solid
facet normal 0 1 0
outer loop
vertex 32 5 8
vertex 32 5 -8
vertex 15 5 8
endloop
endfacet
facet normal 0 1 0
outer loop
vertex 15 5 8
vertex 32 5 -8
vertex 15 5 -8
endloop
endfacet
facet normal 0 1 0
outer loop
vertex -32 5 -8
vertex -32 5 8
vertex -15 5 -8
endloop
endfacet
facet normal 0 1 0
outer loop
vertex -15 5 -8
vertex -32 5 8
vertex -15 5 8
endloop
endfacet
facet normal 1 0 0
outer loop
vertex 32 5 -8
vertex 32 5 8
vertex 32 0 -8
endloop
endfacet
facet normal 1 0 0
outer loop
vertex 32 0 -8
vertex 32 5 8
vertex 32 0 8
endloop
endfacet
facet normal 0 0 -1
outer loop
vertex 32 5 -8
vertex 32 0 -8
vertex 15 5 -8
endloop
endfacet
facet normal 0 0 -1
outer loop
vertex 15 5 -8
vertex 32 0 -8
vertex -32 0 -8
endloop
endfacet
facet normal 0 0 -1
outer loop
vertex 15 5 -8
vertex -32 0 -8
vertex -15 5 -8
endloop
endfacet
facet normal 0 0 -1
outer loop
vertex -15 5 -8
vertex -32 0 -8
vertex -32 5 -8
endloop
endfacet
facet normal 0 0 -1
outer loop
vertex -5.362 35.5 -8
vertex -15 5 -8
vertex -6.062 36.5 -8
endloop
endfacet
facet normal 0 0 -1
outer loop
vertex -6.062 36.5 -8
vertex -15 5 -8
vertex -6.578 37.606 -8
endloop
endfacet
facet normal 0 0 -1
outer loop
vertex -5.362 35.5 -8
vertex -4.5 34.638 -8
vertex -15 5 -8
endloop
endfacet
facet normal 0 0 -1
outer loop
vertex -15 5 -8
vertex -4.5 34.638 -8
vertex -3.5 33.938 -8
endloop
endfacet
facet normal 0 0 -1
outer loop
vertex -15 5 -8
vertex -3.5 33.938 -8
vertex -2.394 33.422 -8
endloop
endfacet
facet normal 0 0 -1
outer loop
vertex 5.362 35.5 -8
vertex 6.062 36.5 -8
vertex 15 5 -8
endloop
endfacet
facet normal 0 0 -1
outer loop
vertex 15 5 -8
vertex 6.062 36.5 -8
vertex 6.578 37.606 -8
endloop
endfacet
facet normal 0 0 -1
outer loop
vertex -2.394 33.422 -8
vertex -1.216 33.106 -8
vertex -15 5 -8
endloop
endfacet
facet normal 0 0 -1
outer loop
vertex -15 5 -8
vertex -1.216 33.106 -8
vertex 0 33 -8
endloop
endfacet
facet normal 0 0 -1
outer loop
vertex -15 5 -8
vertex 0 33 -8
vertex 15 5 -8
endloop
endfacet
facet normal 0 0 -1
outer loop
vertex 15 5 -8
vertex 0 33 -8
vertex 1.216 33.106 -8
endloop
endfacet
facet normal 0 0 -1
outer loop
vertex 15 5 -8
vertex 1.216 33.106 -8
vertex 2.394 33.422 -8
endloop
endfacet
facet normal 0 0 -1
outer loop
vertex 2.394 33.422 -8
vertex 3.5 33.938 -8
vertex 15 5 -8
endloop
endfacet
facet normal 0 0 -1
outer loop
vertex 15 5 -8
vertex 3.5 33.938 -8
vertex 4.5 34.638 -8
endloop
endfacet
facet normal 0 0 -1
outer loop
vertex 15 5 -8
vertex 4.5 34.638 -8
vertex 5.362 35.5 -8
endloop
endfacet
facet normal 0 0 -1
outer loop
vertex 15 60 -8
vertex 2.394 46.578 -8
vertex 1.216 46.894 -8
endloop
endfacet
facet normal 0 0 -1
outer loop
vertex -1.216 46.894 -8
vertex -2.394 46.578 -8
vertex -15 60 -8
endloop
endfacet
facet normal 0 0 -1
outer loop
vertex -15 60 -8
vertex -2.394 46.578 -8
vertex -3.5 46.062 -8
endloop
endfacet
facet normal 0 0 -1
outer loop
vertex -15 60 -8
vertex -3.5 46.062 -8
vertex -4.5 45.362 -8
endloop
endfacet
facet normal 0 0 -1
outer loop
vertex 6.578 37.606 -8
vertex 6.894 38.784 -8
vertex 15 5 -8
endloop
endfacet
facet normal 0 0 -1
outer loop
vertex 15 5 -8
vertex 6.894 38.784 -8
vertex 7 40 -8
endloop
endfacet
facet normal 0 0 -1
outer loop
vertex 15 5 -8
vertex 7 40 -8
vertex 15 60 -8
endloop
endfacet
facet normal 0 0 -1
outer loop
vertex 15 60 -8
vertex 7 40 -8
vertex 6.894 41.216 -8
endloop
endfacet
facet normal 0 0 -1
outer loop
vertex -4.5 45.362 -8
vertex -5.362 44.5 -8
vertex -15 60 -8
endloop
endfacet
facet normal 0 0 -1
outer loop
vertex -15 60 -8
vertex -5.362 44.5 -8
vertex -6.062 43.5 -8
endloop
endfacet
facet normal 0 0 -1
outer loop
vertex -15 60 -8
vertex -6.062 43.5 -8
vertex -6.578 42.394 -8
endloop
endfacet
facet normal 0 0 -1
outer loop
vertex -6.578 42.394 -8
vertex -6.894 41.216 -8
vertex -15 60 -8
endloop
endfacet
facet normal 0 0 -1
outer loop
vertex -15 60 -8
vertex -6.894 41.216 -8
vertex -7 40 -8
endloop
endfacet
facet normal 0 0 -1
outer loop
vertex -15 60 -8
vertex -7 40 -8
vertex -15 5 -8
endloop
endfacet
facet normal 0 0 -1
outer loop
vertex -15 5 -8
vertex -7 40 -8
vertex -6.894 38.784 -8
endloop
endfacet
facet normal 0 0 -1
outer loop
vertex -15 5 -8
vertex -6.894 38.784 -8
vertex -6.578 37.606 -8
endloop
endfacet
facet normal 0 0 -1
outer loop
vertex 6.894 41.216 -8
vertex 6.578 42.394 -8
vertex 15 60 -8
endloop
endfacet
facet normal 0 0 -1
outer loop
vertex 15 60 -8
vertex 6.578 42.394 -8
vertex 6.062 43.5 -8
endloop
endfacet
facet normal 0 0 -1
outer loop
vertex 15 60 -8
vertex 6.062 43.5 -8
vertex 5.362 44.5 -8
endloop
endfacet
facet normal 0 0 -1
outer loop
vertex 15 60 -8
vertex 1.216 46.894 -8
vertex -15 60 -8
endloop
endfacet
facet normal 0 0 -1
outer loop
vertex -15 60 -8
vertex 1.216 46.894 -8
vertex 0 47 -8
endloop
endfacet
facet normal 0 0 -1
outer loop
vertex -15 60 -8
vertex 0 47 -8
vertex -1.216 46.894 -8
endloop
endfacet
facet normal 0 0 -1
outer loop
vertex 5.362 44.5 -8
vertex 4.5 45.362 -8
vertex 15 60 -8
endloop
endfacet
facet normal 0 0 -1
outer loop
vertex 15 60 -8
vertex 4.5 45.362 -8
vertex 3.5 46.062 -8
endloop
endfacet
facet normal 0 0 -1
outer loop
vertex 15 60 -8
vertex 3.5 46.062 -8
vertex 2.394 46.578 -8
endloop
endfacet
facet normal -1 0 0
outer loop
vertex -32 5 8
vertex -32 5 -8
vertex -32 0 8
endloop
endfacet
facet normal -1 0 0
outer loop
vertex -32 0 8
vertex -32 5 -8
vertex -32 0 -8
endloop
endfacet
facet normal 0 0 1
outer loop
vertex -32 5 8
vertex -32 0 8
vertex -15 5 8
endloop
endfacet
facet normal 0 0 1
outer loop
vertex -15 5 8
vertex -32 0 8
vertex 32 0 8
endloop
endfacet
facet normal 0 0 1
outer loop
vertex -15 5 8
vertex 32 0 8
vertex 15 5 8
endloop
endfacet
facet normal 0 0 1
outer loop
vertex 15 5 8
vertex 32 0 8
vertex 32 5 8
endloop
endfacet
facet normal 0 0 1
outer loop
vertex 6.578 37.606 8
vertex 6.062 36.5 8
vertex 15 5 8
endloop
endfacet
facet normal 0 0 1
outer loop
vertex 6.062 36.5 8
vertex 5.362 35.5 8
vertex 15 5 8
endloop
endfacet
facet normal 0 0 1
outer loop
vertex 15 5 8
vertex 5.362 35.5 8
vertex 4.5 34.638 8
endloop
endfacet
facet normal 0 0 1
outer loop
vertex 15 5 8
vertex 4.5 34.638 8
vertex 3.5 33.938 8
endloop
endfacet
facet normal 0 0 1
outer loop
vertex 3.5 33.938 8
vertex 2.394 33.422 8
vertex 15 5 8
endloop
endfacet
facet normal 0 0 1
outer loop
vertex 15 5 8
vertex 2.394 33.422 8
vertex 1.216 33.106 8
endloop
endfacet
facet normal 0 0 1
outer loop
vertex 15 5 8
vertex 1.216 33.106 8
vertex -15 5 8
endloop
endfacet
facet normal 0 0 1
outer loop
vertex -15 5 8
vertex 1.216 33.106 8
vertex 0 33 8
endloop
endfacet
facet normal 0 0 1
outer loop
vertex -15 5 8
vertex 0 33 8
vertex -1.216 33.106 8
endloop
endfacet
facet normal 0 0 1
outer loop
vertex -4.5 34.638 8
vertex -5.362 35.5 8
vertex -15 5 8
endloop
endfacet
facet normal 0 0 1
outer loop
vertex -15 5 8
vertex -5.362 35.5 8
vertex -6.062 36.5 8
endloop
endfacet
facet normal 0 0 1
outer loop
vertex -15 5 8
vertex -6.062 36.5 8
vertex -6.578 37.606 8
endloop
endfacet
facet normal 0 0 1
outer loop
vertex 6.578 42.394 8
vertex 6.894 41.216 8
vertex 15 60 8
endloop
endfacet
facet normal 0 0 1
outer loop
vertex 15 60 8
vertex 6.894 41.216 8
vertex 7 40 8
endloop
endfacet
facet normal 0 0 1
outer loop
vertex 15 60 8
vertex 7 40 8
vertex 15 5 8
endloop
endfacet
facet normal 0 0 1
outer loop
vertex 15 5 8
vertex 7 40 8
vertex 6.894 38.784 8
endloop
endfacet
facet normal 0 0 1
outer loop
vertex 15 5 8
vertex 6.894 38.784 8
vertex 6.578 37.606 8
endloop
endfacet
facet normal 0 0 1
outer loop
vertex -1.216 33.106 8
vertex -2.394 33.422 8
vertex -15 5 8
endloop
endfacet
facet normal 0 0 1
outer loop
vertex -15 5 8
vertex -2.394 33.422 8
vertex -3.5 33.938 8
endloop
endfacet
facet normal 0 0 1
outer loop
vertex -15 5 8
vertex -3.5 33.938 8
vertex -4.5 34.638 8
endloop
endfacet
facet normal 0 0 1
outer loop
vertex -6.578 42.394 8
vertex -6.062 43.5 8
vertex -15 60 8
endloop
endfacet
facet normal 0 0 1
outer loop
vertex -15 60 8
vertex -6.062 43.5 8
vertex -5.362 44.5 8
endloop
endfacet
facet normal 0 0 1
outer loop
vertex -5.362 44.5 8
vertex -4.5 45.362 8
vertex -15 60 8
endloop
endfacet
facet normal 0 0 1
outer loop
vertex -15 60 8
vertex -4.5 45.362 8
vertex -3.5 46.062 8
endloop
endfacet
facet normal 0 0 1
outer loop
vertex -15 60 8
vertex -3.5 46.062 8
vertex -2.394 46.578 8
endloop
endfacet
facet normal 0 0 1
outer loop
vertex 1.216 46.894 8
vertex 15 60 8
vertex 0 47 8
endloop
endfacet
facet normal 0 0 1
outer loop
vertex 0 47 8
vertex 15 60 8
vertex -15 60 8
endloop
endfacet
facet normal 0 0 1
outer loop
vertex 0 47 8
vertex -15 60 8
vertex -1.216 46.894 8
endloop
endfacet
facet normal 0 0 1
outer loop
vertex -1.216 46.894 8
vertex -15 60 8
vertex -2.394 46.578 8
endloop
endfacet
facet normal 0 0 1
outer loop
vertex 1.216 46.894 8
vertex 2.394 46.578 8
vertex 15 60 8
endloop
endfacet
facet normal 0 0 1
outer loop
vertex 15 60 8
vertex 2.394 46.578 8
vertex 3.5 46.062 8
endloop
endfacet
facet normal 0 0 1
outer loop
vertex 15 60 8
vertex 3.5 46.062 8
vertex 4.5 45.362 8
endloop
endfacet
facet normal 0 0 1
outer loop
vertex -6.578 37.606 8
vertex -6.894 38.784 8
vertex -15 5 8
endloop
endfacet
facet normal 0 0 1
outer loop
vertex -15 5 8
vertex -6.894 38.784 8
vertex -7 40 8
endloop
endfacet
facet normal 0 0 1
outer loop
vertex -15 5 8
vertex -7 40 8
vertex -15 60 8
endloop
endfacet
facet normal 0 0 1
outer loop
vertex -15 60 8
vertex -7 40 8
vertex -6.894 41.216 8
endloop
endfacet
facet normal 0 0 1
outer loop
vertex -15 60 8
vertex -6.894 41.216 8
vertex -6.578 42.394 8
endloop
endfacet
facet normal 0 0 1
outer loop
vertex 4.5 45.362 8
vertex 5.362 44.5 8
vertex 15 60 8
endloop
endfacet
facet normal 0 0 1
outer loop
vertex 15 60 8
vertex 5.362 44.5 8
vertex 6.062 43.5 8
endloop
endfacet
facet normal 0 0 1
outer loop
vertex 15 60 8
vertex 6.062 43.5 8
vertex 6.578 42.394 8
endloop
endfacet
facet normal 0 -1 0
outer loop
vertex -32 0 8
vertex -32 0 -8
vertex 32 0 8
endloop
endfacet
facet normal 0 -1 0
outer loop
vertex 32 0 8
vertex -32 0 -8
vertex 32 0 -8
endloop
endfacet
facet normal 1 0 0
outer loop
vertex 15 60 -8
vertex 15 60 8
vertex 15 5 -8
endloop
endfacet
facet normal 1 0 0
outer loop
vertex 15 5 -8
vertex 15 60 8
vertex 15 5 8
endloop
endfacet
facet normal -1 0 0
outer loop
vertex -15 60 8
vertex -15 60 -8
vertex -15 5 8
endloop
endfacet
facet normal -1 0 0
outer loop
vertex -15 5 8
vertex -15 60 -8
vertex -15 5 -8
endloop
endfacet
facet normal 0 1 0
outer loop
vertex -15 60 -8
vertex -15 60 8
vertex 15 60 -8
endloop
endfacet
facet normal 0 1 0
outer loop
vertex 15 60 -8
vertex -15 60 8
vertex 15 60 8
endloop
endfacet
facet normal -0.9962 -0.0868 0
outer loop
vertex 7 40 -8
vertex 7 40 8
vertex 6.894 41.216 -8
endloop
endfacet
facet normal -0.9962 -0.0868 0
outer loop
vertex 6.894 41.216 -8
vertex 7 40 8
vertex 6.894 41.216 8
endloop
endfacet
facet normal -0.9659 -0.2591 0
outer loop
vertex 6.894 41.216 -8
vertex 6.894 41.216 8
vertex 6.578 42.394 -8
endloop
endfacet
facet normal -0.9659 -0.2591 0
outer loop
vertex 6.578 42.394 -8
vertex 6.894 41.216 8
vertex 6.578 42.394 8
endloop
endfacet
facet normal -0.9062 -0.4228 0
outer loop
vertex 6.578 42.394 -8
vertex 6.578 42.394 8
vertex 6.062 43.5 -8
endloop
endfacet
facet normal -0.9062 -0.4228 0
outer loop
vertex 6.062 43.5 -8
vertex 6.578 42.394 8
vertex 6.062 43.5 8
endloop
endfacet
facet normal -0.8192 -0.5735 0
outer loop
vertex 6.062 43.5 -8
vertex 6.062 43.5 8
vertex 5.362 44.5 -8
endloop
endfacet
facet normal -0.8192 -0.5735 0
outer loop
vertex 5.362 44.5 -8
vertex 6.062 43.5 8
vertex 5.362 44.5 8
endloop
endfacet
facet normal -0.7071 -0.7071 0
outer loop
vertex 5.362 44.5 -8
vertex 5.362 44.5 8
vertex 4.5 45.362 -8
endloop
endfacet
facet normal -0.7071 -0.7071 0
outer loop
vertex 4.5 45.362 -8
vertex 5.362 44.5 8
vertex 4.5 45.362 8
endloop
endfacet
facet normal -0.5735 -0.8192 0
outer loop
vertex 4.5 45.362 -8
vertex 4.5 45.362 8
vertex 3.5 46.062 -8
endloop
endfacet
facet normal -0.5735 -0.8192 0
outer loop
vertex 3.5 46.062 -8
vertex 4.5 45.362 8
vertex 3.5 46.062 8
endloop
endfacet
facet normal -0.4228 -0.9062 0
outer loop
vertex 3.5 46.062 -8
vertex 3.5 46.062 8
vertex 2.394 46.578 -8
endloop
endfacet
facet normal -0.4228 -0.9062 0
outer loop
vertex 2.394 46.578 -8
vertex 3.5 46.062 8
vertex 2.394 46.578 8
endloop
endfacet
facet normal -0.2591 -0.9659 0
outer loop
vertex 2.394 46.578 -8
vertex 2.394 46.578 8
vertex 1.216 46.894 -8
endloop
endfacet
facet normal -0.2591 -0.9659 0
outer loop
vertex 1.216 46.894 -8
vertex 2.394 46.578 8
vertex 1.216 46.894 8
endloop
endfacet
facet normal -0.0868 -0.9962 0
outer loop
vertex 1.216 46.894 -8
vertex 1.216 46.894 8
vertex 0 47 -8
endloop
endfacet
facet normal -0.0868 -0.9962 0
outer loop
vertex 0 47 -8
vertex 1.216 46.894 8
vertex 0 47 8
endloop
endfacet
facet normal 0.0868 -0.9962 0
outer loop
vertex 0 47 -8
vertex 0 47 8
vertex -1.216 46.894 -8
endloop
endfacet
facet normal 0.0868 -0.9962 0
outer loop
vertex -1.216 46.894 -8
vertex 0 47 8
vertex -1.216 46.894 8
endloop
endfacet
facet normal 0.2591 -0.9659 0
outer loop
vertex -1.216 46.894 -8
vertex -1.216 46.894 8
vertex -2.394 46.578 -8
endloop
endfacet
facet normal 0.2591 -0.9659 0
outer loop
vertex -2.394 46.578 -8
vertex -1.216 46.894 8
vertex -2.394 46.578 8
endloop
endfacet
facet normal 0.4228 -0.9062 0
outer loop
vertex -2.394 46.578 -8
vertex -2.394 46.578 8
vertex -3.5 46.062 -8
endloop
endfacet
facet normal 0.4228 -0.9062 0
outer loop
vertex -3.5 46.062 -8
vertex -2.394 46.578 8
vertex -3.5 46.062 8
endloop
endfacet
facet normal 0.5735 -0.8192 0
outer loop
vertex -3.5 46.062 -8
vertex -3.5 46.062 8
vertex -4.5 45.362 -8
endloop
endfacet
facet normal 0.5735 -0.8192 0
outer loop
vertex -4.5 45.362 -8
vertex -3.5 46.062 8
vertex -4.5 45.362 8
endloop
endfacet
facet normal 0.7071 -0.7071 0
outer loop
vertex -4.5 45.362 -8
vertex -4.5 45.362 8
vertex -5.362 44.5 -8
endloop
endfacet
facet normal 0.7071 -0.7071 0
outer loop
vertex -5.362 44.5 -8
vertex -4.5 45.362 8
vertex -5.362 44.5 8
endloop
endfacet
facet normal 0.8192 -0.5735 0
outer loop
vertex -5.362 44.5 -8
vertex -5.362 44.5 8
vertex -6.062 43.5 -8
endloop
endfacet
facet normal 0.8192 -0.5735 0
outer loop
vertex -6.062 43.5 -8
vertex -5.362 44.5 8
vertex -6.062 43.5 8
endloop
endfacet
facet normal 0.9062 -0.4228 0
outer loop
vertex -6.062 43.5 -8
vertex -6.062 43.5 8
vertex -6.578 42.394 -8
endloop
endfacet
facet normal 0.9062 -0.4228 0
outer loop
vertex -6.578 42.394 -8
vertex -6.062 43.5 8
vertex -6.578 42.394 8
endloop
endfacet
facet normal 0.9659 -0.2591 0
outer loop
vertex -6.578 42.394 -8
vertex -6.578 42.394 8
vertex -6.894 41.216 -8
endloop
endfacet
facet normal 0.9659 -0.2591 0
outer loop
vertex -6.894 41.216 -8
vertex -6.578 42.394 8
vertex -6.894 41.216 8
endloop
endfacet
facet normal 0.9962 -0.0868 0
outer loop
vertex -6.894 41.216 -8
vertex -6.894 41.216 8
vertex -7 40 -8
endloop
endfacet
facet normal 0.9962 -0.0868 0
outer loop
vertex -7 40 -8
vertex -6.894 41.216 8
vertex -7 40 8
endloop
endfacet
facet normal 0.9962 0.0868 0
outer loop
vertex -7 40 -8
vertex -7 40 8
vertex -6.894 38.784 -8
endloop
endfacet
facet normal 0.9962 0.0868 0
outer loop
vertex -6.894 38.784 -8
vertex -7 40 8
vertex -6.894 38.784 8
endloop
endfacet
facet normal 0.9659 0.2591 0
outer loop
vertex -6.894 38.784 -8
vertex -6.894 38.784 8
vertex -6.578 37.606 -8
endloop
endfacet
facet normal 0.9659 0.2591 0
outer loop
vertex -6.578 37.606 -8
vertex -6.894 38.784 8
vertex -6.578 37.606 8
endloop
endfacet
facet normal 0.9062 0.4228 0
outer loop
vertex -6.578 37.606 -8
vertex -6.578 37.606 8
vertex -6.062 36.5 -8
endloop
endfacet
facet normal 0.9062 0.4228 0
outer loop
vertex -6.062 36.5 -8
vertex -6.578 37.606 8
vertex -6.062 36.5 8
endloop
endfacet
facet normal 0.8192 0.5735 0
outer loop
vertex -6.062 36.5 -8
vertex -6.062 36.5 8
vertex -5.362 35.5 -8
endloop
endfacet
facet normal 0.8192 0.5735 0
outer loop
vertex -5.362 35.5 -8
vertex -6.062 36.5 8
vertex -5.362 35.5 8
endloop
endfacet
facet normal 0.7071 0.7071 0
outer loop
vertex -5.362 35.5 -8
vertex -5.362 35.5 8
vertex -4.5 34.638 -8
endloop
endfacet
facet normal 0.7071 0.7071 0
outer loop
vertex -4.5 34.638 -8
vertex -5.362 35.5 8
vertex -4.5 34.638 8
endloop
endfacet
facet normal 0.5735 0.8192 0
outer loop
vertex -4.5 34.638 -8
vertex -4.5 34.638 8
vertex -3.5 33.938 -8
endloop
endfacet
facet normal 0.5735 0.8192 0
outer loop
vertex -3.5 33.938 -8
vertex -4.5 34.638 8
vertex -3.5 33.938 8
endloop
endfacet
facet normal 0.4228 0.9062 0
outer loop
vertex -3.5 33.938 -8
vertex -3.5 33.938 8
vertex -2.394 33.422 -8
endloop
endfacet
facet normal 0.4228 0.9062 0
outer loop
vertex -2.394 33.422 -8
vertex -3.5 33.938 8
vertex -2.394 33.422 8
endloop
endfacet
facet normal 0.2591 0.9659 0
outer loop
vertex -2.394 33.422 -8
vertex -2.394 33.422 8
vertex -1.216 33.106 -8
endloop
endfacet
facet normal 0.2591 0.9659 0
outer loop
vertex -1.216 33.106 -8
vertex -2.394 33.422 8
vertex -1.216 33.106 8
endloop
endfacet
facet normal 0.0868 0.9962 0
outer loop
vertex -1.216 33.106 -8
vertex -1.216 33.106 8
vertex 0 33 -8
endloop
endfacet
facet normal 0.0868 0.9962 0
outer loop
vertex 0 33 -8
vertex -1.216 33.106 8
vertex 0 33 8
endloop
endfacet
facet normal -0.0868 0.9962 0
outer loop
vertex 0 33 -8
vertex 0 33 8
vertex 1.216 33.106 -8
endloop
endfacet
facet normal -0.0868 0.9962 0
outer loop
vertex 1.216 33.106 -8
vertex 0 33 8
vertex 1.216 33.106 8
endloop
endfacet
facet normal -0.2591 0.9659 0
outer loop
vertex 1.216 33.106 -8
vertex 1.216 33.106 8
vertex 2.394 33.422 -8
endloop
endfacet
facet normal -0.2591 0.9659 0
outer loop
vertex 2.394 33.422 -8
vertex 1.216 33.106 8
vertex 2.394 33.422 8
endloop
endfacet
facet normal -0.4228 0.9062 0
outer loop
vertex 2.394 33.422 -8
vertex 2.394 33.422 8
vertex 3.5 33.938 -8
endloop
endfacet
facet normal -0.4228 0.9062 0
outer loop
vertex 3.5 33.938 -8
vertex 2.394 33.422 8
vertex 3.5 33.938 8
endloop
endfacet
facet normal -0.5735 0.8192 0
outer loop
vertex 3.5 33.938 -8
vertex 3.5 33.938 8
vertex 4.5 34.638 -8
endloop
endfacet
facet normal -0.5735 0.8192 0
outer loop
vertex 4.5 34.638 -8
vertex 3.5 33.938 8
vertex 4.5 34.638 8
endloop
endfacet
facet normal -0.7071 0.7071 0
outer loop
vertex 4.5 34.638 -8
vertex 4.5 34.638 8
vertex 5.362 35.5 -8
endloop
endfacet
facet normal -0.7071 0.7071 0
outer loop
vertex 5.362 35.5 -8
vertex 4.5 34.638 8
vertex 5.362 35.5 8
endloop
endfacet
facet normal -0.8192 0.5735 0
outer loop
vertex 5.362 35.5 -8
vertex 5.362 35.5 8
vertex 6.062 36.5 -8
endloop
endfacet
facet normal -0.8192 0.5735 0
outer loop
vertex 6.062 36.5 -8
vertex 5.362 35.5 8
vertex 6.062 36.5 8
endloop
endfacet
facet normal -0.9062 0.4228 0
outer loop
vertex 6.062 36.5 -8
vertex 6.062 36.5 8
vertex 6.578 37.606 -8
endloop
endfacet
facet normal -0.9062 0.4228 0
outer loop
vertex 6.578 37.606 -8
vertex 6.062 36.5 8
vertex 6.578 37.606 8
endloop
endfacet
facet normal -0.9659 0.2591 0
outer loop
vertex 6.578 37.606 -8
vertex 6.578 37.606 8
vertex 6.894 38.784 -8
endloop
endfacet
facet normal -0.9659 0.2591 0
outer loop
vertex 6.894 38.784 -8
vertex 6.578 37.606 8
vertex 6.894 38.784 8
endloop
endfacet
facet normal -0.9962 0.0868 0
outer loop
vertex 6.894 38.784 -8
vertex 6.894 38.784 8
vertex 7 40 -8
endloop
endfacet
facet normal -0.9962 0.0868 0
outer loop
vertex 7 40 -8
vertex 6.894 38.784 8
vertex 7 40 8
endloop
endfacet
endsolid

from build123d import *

# Parameters (mm, degrees)
SKETCH1_W           = 64
SKETCH1_H           = 16
BOSS_EXTRUDE1_DEPTH = 5
SKETCH2_W           = 30
SKETCH2_H           = 16
BOSS_EXTRUDE2_DEPTH = 55
SKETCH3_R           = 7
CUT_EXTRUDE1_DEPTH  = 55


with BuildPart() as part:
    # Sketch1 → Boss-Extrude1 (new body)
    with BuildSketch(Plane(origin=(0, 0, 0), x_dir=(1, 0, 0), z_dir=(0, 1, 0))):
        Rectangle(SKETCH1_W, SKETCH1_H)
    extrude(amount=BOSS_EXTRUDE1_DEPTH)

    # Sketch2 → Boss-Extrude2 (add)
    with BuildSketch(Plane(origin=(0, 5, 0), x_dir=(1, 0, 0), z_dir=(0, 1, 0))):
        Rectangle(SKETCH2_W, SKETCH2_H)
    extrude(amount=BOSS_EXTRUDE2_DEPTH)

    # Sketch3 → Cut-Extrude1 (cut)
    with BuildSketch(Plane.XY.offset(8)):
        with Locations((0, 40)):
            Circle(SKETCH3_R)
    extrude(amount=-CUT_EXTRUDE1_DEPTH, mode=Mode.SUBTRACT)


solid = part.part
